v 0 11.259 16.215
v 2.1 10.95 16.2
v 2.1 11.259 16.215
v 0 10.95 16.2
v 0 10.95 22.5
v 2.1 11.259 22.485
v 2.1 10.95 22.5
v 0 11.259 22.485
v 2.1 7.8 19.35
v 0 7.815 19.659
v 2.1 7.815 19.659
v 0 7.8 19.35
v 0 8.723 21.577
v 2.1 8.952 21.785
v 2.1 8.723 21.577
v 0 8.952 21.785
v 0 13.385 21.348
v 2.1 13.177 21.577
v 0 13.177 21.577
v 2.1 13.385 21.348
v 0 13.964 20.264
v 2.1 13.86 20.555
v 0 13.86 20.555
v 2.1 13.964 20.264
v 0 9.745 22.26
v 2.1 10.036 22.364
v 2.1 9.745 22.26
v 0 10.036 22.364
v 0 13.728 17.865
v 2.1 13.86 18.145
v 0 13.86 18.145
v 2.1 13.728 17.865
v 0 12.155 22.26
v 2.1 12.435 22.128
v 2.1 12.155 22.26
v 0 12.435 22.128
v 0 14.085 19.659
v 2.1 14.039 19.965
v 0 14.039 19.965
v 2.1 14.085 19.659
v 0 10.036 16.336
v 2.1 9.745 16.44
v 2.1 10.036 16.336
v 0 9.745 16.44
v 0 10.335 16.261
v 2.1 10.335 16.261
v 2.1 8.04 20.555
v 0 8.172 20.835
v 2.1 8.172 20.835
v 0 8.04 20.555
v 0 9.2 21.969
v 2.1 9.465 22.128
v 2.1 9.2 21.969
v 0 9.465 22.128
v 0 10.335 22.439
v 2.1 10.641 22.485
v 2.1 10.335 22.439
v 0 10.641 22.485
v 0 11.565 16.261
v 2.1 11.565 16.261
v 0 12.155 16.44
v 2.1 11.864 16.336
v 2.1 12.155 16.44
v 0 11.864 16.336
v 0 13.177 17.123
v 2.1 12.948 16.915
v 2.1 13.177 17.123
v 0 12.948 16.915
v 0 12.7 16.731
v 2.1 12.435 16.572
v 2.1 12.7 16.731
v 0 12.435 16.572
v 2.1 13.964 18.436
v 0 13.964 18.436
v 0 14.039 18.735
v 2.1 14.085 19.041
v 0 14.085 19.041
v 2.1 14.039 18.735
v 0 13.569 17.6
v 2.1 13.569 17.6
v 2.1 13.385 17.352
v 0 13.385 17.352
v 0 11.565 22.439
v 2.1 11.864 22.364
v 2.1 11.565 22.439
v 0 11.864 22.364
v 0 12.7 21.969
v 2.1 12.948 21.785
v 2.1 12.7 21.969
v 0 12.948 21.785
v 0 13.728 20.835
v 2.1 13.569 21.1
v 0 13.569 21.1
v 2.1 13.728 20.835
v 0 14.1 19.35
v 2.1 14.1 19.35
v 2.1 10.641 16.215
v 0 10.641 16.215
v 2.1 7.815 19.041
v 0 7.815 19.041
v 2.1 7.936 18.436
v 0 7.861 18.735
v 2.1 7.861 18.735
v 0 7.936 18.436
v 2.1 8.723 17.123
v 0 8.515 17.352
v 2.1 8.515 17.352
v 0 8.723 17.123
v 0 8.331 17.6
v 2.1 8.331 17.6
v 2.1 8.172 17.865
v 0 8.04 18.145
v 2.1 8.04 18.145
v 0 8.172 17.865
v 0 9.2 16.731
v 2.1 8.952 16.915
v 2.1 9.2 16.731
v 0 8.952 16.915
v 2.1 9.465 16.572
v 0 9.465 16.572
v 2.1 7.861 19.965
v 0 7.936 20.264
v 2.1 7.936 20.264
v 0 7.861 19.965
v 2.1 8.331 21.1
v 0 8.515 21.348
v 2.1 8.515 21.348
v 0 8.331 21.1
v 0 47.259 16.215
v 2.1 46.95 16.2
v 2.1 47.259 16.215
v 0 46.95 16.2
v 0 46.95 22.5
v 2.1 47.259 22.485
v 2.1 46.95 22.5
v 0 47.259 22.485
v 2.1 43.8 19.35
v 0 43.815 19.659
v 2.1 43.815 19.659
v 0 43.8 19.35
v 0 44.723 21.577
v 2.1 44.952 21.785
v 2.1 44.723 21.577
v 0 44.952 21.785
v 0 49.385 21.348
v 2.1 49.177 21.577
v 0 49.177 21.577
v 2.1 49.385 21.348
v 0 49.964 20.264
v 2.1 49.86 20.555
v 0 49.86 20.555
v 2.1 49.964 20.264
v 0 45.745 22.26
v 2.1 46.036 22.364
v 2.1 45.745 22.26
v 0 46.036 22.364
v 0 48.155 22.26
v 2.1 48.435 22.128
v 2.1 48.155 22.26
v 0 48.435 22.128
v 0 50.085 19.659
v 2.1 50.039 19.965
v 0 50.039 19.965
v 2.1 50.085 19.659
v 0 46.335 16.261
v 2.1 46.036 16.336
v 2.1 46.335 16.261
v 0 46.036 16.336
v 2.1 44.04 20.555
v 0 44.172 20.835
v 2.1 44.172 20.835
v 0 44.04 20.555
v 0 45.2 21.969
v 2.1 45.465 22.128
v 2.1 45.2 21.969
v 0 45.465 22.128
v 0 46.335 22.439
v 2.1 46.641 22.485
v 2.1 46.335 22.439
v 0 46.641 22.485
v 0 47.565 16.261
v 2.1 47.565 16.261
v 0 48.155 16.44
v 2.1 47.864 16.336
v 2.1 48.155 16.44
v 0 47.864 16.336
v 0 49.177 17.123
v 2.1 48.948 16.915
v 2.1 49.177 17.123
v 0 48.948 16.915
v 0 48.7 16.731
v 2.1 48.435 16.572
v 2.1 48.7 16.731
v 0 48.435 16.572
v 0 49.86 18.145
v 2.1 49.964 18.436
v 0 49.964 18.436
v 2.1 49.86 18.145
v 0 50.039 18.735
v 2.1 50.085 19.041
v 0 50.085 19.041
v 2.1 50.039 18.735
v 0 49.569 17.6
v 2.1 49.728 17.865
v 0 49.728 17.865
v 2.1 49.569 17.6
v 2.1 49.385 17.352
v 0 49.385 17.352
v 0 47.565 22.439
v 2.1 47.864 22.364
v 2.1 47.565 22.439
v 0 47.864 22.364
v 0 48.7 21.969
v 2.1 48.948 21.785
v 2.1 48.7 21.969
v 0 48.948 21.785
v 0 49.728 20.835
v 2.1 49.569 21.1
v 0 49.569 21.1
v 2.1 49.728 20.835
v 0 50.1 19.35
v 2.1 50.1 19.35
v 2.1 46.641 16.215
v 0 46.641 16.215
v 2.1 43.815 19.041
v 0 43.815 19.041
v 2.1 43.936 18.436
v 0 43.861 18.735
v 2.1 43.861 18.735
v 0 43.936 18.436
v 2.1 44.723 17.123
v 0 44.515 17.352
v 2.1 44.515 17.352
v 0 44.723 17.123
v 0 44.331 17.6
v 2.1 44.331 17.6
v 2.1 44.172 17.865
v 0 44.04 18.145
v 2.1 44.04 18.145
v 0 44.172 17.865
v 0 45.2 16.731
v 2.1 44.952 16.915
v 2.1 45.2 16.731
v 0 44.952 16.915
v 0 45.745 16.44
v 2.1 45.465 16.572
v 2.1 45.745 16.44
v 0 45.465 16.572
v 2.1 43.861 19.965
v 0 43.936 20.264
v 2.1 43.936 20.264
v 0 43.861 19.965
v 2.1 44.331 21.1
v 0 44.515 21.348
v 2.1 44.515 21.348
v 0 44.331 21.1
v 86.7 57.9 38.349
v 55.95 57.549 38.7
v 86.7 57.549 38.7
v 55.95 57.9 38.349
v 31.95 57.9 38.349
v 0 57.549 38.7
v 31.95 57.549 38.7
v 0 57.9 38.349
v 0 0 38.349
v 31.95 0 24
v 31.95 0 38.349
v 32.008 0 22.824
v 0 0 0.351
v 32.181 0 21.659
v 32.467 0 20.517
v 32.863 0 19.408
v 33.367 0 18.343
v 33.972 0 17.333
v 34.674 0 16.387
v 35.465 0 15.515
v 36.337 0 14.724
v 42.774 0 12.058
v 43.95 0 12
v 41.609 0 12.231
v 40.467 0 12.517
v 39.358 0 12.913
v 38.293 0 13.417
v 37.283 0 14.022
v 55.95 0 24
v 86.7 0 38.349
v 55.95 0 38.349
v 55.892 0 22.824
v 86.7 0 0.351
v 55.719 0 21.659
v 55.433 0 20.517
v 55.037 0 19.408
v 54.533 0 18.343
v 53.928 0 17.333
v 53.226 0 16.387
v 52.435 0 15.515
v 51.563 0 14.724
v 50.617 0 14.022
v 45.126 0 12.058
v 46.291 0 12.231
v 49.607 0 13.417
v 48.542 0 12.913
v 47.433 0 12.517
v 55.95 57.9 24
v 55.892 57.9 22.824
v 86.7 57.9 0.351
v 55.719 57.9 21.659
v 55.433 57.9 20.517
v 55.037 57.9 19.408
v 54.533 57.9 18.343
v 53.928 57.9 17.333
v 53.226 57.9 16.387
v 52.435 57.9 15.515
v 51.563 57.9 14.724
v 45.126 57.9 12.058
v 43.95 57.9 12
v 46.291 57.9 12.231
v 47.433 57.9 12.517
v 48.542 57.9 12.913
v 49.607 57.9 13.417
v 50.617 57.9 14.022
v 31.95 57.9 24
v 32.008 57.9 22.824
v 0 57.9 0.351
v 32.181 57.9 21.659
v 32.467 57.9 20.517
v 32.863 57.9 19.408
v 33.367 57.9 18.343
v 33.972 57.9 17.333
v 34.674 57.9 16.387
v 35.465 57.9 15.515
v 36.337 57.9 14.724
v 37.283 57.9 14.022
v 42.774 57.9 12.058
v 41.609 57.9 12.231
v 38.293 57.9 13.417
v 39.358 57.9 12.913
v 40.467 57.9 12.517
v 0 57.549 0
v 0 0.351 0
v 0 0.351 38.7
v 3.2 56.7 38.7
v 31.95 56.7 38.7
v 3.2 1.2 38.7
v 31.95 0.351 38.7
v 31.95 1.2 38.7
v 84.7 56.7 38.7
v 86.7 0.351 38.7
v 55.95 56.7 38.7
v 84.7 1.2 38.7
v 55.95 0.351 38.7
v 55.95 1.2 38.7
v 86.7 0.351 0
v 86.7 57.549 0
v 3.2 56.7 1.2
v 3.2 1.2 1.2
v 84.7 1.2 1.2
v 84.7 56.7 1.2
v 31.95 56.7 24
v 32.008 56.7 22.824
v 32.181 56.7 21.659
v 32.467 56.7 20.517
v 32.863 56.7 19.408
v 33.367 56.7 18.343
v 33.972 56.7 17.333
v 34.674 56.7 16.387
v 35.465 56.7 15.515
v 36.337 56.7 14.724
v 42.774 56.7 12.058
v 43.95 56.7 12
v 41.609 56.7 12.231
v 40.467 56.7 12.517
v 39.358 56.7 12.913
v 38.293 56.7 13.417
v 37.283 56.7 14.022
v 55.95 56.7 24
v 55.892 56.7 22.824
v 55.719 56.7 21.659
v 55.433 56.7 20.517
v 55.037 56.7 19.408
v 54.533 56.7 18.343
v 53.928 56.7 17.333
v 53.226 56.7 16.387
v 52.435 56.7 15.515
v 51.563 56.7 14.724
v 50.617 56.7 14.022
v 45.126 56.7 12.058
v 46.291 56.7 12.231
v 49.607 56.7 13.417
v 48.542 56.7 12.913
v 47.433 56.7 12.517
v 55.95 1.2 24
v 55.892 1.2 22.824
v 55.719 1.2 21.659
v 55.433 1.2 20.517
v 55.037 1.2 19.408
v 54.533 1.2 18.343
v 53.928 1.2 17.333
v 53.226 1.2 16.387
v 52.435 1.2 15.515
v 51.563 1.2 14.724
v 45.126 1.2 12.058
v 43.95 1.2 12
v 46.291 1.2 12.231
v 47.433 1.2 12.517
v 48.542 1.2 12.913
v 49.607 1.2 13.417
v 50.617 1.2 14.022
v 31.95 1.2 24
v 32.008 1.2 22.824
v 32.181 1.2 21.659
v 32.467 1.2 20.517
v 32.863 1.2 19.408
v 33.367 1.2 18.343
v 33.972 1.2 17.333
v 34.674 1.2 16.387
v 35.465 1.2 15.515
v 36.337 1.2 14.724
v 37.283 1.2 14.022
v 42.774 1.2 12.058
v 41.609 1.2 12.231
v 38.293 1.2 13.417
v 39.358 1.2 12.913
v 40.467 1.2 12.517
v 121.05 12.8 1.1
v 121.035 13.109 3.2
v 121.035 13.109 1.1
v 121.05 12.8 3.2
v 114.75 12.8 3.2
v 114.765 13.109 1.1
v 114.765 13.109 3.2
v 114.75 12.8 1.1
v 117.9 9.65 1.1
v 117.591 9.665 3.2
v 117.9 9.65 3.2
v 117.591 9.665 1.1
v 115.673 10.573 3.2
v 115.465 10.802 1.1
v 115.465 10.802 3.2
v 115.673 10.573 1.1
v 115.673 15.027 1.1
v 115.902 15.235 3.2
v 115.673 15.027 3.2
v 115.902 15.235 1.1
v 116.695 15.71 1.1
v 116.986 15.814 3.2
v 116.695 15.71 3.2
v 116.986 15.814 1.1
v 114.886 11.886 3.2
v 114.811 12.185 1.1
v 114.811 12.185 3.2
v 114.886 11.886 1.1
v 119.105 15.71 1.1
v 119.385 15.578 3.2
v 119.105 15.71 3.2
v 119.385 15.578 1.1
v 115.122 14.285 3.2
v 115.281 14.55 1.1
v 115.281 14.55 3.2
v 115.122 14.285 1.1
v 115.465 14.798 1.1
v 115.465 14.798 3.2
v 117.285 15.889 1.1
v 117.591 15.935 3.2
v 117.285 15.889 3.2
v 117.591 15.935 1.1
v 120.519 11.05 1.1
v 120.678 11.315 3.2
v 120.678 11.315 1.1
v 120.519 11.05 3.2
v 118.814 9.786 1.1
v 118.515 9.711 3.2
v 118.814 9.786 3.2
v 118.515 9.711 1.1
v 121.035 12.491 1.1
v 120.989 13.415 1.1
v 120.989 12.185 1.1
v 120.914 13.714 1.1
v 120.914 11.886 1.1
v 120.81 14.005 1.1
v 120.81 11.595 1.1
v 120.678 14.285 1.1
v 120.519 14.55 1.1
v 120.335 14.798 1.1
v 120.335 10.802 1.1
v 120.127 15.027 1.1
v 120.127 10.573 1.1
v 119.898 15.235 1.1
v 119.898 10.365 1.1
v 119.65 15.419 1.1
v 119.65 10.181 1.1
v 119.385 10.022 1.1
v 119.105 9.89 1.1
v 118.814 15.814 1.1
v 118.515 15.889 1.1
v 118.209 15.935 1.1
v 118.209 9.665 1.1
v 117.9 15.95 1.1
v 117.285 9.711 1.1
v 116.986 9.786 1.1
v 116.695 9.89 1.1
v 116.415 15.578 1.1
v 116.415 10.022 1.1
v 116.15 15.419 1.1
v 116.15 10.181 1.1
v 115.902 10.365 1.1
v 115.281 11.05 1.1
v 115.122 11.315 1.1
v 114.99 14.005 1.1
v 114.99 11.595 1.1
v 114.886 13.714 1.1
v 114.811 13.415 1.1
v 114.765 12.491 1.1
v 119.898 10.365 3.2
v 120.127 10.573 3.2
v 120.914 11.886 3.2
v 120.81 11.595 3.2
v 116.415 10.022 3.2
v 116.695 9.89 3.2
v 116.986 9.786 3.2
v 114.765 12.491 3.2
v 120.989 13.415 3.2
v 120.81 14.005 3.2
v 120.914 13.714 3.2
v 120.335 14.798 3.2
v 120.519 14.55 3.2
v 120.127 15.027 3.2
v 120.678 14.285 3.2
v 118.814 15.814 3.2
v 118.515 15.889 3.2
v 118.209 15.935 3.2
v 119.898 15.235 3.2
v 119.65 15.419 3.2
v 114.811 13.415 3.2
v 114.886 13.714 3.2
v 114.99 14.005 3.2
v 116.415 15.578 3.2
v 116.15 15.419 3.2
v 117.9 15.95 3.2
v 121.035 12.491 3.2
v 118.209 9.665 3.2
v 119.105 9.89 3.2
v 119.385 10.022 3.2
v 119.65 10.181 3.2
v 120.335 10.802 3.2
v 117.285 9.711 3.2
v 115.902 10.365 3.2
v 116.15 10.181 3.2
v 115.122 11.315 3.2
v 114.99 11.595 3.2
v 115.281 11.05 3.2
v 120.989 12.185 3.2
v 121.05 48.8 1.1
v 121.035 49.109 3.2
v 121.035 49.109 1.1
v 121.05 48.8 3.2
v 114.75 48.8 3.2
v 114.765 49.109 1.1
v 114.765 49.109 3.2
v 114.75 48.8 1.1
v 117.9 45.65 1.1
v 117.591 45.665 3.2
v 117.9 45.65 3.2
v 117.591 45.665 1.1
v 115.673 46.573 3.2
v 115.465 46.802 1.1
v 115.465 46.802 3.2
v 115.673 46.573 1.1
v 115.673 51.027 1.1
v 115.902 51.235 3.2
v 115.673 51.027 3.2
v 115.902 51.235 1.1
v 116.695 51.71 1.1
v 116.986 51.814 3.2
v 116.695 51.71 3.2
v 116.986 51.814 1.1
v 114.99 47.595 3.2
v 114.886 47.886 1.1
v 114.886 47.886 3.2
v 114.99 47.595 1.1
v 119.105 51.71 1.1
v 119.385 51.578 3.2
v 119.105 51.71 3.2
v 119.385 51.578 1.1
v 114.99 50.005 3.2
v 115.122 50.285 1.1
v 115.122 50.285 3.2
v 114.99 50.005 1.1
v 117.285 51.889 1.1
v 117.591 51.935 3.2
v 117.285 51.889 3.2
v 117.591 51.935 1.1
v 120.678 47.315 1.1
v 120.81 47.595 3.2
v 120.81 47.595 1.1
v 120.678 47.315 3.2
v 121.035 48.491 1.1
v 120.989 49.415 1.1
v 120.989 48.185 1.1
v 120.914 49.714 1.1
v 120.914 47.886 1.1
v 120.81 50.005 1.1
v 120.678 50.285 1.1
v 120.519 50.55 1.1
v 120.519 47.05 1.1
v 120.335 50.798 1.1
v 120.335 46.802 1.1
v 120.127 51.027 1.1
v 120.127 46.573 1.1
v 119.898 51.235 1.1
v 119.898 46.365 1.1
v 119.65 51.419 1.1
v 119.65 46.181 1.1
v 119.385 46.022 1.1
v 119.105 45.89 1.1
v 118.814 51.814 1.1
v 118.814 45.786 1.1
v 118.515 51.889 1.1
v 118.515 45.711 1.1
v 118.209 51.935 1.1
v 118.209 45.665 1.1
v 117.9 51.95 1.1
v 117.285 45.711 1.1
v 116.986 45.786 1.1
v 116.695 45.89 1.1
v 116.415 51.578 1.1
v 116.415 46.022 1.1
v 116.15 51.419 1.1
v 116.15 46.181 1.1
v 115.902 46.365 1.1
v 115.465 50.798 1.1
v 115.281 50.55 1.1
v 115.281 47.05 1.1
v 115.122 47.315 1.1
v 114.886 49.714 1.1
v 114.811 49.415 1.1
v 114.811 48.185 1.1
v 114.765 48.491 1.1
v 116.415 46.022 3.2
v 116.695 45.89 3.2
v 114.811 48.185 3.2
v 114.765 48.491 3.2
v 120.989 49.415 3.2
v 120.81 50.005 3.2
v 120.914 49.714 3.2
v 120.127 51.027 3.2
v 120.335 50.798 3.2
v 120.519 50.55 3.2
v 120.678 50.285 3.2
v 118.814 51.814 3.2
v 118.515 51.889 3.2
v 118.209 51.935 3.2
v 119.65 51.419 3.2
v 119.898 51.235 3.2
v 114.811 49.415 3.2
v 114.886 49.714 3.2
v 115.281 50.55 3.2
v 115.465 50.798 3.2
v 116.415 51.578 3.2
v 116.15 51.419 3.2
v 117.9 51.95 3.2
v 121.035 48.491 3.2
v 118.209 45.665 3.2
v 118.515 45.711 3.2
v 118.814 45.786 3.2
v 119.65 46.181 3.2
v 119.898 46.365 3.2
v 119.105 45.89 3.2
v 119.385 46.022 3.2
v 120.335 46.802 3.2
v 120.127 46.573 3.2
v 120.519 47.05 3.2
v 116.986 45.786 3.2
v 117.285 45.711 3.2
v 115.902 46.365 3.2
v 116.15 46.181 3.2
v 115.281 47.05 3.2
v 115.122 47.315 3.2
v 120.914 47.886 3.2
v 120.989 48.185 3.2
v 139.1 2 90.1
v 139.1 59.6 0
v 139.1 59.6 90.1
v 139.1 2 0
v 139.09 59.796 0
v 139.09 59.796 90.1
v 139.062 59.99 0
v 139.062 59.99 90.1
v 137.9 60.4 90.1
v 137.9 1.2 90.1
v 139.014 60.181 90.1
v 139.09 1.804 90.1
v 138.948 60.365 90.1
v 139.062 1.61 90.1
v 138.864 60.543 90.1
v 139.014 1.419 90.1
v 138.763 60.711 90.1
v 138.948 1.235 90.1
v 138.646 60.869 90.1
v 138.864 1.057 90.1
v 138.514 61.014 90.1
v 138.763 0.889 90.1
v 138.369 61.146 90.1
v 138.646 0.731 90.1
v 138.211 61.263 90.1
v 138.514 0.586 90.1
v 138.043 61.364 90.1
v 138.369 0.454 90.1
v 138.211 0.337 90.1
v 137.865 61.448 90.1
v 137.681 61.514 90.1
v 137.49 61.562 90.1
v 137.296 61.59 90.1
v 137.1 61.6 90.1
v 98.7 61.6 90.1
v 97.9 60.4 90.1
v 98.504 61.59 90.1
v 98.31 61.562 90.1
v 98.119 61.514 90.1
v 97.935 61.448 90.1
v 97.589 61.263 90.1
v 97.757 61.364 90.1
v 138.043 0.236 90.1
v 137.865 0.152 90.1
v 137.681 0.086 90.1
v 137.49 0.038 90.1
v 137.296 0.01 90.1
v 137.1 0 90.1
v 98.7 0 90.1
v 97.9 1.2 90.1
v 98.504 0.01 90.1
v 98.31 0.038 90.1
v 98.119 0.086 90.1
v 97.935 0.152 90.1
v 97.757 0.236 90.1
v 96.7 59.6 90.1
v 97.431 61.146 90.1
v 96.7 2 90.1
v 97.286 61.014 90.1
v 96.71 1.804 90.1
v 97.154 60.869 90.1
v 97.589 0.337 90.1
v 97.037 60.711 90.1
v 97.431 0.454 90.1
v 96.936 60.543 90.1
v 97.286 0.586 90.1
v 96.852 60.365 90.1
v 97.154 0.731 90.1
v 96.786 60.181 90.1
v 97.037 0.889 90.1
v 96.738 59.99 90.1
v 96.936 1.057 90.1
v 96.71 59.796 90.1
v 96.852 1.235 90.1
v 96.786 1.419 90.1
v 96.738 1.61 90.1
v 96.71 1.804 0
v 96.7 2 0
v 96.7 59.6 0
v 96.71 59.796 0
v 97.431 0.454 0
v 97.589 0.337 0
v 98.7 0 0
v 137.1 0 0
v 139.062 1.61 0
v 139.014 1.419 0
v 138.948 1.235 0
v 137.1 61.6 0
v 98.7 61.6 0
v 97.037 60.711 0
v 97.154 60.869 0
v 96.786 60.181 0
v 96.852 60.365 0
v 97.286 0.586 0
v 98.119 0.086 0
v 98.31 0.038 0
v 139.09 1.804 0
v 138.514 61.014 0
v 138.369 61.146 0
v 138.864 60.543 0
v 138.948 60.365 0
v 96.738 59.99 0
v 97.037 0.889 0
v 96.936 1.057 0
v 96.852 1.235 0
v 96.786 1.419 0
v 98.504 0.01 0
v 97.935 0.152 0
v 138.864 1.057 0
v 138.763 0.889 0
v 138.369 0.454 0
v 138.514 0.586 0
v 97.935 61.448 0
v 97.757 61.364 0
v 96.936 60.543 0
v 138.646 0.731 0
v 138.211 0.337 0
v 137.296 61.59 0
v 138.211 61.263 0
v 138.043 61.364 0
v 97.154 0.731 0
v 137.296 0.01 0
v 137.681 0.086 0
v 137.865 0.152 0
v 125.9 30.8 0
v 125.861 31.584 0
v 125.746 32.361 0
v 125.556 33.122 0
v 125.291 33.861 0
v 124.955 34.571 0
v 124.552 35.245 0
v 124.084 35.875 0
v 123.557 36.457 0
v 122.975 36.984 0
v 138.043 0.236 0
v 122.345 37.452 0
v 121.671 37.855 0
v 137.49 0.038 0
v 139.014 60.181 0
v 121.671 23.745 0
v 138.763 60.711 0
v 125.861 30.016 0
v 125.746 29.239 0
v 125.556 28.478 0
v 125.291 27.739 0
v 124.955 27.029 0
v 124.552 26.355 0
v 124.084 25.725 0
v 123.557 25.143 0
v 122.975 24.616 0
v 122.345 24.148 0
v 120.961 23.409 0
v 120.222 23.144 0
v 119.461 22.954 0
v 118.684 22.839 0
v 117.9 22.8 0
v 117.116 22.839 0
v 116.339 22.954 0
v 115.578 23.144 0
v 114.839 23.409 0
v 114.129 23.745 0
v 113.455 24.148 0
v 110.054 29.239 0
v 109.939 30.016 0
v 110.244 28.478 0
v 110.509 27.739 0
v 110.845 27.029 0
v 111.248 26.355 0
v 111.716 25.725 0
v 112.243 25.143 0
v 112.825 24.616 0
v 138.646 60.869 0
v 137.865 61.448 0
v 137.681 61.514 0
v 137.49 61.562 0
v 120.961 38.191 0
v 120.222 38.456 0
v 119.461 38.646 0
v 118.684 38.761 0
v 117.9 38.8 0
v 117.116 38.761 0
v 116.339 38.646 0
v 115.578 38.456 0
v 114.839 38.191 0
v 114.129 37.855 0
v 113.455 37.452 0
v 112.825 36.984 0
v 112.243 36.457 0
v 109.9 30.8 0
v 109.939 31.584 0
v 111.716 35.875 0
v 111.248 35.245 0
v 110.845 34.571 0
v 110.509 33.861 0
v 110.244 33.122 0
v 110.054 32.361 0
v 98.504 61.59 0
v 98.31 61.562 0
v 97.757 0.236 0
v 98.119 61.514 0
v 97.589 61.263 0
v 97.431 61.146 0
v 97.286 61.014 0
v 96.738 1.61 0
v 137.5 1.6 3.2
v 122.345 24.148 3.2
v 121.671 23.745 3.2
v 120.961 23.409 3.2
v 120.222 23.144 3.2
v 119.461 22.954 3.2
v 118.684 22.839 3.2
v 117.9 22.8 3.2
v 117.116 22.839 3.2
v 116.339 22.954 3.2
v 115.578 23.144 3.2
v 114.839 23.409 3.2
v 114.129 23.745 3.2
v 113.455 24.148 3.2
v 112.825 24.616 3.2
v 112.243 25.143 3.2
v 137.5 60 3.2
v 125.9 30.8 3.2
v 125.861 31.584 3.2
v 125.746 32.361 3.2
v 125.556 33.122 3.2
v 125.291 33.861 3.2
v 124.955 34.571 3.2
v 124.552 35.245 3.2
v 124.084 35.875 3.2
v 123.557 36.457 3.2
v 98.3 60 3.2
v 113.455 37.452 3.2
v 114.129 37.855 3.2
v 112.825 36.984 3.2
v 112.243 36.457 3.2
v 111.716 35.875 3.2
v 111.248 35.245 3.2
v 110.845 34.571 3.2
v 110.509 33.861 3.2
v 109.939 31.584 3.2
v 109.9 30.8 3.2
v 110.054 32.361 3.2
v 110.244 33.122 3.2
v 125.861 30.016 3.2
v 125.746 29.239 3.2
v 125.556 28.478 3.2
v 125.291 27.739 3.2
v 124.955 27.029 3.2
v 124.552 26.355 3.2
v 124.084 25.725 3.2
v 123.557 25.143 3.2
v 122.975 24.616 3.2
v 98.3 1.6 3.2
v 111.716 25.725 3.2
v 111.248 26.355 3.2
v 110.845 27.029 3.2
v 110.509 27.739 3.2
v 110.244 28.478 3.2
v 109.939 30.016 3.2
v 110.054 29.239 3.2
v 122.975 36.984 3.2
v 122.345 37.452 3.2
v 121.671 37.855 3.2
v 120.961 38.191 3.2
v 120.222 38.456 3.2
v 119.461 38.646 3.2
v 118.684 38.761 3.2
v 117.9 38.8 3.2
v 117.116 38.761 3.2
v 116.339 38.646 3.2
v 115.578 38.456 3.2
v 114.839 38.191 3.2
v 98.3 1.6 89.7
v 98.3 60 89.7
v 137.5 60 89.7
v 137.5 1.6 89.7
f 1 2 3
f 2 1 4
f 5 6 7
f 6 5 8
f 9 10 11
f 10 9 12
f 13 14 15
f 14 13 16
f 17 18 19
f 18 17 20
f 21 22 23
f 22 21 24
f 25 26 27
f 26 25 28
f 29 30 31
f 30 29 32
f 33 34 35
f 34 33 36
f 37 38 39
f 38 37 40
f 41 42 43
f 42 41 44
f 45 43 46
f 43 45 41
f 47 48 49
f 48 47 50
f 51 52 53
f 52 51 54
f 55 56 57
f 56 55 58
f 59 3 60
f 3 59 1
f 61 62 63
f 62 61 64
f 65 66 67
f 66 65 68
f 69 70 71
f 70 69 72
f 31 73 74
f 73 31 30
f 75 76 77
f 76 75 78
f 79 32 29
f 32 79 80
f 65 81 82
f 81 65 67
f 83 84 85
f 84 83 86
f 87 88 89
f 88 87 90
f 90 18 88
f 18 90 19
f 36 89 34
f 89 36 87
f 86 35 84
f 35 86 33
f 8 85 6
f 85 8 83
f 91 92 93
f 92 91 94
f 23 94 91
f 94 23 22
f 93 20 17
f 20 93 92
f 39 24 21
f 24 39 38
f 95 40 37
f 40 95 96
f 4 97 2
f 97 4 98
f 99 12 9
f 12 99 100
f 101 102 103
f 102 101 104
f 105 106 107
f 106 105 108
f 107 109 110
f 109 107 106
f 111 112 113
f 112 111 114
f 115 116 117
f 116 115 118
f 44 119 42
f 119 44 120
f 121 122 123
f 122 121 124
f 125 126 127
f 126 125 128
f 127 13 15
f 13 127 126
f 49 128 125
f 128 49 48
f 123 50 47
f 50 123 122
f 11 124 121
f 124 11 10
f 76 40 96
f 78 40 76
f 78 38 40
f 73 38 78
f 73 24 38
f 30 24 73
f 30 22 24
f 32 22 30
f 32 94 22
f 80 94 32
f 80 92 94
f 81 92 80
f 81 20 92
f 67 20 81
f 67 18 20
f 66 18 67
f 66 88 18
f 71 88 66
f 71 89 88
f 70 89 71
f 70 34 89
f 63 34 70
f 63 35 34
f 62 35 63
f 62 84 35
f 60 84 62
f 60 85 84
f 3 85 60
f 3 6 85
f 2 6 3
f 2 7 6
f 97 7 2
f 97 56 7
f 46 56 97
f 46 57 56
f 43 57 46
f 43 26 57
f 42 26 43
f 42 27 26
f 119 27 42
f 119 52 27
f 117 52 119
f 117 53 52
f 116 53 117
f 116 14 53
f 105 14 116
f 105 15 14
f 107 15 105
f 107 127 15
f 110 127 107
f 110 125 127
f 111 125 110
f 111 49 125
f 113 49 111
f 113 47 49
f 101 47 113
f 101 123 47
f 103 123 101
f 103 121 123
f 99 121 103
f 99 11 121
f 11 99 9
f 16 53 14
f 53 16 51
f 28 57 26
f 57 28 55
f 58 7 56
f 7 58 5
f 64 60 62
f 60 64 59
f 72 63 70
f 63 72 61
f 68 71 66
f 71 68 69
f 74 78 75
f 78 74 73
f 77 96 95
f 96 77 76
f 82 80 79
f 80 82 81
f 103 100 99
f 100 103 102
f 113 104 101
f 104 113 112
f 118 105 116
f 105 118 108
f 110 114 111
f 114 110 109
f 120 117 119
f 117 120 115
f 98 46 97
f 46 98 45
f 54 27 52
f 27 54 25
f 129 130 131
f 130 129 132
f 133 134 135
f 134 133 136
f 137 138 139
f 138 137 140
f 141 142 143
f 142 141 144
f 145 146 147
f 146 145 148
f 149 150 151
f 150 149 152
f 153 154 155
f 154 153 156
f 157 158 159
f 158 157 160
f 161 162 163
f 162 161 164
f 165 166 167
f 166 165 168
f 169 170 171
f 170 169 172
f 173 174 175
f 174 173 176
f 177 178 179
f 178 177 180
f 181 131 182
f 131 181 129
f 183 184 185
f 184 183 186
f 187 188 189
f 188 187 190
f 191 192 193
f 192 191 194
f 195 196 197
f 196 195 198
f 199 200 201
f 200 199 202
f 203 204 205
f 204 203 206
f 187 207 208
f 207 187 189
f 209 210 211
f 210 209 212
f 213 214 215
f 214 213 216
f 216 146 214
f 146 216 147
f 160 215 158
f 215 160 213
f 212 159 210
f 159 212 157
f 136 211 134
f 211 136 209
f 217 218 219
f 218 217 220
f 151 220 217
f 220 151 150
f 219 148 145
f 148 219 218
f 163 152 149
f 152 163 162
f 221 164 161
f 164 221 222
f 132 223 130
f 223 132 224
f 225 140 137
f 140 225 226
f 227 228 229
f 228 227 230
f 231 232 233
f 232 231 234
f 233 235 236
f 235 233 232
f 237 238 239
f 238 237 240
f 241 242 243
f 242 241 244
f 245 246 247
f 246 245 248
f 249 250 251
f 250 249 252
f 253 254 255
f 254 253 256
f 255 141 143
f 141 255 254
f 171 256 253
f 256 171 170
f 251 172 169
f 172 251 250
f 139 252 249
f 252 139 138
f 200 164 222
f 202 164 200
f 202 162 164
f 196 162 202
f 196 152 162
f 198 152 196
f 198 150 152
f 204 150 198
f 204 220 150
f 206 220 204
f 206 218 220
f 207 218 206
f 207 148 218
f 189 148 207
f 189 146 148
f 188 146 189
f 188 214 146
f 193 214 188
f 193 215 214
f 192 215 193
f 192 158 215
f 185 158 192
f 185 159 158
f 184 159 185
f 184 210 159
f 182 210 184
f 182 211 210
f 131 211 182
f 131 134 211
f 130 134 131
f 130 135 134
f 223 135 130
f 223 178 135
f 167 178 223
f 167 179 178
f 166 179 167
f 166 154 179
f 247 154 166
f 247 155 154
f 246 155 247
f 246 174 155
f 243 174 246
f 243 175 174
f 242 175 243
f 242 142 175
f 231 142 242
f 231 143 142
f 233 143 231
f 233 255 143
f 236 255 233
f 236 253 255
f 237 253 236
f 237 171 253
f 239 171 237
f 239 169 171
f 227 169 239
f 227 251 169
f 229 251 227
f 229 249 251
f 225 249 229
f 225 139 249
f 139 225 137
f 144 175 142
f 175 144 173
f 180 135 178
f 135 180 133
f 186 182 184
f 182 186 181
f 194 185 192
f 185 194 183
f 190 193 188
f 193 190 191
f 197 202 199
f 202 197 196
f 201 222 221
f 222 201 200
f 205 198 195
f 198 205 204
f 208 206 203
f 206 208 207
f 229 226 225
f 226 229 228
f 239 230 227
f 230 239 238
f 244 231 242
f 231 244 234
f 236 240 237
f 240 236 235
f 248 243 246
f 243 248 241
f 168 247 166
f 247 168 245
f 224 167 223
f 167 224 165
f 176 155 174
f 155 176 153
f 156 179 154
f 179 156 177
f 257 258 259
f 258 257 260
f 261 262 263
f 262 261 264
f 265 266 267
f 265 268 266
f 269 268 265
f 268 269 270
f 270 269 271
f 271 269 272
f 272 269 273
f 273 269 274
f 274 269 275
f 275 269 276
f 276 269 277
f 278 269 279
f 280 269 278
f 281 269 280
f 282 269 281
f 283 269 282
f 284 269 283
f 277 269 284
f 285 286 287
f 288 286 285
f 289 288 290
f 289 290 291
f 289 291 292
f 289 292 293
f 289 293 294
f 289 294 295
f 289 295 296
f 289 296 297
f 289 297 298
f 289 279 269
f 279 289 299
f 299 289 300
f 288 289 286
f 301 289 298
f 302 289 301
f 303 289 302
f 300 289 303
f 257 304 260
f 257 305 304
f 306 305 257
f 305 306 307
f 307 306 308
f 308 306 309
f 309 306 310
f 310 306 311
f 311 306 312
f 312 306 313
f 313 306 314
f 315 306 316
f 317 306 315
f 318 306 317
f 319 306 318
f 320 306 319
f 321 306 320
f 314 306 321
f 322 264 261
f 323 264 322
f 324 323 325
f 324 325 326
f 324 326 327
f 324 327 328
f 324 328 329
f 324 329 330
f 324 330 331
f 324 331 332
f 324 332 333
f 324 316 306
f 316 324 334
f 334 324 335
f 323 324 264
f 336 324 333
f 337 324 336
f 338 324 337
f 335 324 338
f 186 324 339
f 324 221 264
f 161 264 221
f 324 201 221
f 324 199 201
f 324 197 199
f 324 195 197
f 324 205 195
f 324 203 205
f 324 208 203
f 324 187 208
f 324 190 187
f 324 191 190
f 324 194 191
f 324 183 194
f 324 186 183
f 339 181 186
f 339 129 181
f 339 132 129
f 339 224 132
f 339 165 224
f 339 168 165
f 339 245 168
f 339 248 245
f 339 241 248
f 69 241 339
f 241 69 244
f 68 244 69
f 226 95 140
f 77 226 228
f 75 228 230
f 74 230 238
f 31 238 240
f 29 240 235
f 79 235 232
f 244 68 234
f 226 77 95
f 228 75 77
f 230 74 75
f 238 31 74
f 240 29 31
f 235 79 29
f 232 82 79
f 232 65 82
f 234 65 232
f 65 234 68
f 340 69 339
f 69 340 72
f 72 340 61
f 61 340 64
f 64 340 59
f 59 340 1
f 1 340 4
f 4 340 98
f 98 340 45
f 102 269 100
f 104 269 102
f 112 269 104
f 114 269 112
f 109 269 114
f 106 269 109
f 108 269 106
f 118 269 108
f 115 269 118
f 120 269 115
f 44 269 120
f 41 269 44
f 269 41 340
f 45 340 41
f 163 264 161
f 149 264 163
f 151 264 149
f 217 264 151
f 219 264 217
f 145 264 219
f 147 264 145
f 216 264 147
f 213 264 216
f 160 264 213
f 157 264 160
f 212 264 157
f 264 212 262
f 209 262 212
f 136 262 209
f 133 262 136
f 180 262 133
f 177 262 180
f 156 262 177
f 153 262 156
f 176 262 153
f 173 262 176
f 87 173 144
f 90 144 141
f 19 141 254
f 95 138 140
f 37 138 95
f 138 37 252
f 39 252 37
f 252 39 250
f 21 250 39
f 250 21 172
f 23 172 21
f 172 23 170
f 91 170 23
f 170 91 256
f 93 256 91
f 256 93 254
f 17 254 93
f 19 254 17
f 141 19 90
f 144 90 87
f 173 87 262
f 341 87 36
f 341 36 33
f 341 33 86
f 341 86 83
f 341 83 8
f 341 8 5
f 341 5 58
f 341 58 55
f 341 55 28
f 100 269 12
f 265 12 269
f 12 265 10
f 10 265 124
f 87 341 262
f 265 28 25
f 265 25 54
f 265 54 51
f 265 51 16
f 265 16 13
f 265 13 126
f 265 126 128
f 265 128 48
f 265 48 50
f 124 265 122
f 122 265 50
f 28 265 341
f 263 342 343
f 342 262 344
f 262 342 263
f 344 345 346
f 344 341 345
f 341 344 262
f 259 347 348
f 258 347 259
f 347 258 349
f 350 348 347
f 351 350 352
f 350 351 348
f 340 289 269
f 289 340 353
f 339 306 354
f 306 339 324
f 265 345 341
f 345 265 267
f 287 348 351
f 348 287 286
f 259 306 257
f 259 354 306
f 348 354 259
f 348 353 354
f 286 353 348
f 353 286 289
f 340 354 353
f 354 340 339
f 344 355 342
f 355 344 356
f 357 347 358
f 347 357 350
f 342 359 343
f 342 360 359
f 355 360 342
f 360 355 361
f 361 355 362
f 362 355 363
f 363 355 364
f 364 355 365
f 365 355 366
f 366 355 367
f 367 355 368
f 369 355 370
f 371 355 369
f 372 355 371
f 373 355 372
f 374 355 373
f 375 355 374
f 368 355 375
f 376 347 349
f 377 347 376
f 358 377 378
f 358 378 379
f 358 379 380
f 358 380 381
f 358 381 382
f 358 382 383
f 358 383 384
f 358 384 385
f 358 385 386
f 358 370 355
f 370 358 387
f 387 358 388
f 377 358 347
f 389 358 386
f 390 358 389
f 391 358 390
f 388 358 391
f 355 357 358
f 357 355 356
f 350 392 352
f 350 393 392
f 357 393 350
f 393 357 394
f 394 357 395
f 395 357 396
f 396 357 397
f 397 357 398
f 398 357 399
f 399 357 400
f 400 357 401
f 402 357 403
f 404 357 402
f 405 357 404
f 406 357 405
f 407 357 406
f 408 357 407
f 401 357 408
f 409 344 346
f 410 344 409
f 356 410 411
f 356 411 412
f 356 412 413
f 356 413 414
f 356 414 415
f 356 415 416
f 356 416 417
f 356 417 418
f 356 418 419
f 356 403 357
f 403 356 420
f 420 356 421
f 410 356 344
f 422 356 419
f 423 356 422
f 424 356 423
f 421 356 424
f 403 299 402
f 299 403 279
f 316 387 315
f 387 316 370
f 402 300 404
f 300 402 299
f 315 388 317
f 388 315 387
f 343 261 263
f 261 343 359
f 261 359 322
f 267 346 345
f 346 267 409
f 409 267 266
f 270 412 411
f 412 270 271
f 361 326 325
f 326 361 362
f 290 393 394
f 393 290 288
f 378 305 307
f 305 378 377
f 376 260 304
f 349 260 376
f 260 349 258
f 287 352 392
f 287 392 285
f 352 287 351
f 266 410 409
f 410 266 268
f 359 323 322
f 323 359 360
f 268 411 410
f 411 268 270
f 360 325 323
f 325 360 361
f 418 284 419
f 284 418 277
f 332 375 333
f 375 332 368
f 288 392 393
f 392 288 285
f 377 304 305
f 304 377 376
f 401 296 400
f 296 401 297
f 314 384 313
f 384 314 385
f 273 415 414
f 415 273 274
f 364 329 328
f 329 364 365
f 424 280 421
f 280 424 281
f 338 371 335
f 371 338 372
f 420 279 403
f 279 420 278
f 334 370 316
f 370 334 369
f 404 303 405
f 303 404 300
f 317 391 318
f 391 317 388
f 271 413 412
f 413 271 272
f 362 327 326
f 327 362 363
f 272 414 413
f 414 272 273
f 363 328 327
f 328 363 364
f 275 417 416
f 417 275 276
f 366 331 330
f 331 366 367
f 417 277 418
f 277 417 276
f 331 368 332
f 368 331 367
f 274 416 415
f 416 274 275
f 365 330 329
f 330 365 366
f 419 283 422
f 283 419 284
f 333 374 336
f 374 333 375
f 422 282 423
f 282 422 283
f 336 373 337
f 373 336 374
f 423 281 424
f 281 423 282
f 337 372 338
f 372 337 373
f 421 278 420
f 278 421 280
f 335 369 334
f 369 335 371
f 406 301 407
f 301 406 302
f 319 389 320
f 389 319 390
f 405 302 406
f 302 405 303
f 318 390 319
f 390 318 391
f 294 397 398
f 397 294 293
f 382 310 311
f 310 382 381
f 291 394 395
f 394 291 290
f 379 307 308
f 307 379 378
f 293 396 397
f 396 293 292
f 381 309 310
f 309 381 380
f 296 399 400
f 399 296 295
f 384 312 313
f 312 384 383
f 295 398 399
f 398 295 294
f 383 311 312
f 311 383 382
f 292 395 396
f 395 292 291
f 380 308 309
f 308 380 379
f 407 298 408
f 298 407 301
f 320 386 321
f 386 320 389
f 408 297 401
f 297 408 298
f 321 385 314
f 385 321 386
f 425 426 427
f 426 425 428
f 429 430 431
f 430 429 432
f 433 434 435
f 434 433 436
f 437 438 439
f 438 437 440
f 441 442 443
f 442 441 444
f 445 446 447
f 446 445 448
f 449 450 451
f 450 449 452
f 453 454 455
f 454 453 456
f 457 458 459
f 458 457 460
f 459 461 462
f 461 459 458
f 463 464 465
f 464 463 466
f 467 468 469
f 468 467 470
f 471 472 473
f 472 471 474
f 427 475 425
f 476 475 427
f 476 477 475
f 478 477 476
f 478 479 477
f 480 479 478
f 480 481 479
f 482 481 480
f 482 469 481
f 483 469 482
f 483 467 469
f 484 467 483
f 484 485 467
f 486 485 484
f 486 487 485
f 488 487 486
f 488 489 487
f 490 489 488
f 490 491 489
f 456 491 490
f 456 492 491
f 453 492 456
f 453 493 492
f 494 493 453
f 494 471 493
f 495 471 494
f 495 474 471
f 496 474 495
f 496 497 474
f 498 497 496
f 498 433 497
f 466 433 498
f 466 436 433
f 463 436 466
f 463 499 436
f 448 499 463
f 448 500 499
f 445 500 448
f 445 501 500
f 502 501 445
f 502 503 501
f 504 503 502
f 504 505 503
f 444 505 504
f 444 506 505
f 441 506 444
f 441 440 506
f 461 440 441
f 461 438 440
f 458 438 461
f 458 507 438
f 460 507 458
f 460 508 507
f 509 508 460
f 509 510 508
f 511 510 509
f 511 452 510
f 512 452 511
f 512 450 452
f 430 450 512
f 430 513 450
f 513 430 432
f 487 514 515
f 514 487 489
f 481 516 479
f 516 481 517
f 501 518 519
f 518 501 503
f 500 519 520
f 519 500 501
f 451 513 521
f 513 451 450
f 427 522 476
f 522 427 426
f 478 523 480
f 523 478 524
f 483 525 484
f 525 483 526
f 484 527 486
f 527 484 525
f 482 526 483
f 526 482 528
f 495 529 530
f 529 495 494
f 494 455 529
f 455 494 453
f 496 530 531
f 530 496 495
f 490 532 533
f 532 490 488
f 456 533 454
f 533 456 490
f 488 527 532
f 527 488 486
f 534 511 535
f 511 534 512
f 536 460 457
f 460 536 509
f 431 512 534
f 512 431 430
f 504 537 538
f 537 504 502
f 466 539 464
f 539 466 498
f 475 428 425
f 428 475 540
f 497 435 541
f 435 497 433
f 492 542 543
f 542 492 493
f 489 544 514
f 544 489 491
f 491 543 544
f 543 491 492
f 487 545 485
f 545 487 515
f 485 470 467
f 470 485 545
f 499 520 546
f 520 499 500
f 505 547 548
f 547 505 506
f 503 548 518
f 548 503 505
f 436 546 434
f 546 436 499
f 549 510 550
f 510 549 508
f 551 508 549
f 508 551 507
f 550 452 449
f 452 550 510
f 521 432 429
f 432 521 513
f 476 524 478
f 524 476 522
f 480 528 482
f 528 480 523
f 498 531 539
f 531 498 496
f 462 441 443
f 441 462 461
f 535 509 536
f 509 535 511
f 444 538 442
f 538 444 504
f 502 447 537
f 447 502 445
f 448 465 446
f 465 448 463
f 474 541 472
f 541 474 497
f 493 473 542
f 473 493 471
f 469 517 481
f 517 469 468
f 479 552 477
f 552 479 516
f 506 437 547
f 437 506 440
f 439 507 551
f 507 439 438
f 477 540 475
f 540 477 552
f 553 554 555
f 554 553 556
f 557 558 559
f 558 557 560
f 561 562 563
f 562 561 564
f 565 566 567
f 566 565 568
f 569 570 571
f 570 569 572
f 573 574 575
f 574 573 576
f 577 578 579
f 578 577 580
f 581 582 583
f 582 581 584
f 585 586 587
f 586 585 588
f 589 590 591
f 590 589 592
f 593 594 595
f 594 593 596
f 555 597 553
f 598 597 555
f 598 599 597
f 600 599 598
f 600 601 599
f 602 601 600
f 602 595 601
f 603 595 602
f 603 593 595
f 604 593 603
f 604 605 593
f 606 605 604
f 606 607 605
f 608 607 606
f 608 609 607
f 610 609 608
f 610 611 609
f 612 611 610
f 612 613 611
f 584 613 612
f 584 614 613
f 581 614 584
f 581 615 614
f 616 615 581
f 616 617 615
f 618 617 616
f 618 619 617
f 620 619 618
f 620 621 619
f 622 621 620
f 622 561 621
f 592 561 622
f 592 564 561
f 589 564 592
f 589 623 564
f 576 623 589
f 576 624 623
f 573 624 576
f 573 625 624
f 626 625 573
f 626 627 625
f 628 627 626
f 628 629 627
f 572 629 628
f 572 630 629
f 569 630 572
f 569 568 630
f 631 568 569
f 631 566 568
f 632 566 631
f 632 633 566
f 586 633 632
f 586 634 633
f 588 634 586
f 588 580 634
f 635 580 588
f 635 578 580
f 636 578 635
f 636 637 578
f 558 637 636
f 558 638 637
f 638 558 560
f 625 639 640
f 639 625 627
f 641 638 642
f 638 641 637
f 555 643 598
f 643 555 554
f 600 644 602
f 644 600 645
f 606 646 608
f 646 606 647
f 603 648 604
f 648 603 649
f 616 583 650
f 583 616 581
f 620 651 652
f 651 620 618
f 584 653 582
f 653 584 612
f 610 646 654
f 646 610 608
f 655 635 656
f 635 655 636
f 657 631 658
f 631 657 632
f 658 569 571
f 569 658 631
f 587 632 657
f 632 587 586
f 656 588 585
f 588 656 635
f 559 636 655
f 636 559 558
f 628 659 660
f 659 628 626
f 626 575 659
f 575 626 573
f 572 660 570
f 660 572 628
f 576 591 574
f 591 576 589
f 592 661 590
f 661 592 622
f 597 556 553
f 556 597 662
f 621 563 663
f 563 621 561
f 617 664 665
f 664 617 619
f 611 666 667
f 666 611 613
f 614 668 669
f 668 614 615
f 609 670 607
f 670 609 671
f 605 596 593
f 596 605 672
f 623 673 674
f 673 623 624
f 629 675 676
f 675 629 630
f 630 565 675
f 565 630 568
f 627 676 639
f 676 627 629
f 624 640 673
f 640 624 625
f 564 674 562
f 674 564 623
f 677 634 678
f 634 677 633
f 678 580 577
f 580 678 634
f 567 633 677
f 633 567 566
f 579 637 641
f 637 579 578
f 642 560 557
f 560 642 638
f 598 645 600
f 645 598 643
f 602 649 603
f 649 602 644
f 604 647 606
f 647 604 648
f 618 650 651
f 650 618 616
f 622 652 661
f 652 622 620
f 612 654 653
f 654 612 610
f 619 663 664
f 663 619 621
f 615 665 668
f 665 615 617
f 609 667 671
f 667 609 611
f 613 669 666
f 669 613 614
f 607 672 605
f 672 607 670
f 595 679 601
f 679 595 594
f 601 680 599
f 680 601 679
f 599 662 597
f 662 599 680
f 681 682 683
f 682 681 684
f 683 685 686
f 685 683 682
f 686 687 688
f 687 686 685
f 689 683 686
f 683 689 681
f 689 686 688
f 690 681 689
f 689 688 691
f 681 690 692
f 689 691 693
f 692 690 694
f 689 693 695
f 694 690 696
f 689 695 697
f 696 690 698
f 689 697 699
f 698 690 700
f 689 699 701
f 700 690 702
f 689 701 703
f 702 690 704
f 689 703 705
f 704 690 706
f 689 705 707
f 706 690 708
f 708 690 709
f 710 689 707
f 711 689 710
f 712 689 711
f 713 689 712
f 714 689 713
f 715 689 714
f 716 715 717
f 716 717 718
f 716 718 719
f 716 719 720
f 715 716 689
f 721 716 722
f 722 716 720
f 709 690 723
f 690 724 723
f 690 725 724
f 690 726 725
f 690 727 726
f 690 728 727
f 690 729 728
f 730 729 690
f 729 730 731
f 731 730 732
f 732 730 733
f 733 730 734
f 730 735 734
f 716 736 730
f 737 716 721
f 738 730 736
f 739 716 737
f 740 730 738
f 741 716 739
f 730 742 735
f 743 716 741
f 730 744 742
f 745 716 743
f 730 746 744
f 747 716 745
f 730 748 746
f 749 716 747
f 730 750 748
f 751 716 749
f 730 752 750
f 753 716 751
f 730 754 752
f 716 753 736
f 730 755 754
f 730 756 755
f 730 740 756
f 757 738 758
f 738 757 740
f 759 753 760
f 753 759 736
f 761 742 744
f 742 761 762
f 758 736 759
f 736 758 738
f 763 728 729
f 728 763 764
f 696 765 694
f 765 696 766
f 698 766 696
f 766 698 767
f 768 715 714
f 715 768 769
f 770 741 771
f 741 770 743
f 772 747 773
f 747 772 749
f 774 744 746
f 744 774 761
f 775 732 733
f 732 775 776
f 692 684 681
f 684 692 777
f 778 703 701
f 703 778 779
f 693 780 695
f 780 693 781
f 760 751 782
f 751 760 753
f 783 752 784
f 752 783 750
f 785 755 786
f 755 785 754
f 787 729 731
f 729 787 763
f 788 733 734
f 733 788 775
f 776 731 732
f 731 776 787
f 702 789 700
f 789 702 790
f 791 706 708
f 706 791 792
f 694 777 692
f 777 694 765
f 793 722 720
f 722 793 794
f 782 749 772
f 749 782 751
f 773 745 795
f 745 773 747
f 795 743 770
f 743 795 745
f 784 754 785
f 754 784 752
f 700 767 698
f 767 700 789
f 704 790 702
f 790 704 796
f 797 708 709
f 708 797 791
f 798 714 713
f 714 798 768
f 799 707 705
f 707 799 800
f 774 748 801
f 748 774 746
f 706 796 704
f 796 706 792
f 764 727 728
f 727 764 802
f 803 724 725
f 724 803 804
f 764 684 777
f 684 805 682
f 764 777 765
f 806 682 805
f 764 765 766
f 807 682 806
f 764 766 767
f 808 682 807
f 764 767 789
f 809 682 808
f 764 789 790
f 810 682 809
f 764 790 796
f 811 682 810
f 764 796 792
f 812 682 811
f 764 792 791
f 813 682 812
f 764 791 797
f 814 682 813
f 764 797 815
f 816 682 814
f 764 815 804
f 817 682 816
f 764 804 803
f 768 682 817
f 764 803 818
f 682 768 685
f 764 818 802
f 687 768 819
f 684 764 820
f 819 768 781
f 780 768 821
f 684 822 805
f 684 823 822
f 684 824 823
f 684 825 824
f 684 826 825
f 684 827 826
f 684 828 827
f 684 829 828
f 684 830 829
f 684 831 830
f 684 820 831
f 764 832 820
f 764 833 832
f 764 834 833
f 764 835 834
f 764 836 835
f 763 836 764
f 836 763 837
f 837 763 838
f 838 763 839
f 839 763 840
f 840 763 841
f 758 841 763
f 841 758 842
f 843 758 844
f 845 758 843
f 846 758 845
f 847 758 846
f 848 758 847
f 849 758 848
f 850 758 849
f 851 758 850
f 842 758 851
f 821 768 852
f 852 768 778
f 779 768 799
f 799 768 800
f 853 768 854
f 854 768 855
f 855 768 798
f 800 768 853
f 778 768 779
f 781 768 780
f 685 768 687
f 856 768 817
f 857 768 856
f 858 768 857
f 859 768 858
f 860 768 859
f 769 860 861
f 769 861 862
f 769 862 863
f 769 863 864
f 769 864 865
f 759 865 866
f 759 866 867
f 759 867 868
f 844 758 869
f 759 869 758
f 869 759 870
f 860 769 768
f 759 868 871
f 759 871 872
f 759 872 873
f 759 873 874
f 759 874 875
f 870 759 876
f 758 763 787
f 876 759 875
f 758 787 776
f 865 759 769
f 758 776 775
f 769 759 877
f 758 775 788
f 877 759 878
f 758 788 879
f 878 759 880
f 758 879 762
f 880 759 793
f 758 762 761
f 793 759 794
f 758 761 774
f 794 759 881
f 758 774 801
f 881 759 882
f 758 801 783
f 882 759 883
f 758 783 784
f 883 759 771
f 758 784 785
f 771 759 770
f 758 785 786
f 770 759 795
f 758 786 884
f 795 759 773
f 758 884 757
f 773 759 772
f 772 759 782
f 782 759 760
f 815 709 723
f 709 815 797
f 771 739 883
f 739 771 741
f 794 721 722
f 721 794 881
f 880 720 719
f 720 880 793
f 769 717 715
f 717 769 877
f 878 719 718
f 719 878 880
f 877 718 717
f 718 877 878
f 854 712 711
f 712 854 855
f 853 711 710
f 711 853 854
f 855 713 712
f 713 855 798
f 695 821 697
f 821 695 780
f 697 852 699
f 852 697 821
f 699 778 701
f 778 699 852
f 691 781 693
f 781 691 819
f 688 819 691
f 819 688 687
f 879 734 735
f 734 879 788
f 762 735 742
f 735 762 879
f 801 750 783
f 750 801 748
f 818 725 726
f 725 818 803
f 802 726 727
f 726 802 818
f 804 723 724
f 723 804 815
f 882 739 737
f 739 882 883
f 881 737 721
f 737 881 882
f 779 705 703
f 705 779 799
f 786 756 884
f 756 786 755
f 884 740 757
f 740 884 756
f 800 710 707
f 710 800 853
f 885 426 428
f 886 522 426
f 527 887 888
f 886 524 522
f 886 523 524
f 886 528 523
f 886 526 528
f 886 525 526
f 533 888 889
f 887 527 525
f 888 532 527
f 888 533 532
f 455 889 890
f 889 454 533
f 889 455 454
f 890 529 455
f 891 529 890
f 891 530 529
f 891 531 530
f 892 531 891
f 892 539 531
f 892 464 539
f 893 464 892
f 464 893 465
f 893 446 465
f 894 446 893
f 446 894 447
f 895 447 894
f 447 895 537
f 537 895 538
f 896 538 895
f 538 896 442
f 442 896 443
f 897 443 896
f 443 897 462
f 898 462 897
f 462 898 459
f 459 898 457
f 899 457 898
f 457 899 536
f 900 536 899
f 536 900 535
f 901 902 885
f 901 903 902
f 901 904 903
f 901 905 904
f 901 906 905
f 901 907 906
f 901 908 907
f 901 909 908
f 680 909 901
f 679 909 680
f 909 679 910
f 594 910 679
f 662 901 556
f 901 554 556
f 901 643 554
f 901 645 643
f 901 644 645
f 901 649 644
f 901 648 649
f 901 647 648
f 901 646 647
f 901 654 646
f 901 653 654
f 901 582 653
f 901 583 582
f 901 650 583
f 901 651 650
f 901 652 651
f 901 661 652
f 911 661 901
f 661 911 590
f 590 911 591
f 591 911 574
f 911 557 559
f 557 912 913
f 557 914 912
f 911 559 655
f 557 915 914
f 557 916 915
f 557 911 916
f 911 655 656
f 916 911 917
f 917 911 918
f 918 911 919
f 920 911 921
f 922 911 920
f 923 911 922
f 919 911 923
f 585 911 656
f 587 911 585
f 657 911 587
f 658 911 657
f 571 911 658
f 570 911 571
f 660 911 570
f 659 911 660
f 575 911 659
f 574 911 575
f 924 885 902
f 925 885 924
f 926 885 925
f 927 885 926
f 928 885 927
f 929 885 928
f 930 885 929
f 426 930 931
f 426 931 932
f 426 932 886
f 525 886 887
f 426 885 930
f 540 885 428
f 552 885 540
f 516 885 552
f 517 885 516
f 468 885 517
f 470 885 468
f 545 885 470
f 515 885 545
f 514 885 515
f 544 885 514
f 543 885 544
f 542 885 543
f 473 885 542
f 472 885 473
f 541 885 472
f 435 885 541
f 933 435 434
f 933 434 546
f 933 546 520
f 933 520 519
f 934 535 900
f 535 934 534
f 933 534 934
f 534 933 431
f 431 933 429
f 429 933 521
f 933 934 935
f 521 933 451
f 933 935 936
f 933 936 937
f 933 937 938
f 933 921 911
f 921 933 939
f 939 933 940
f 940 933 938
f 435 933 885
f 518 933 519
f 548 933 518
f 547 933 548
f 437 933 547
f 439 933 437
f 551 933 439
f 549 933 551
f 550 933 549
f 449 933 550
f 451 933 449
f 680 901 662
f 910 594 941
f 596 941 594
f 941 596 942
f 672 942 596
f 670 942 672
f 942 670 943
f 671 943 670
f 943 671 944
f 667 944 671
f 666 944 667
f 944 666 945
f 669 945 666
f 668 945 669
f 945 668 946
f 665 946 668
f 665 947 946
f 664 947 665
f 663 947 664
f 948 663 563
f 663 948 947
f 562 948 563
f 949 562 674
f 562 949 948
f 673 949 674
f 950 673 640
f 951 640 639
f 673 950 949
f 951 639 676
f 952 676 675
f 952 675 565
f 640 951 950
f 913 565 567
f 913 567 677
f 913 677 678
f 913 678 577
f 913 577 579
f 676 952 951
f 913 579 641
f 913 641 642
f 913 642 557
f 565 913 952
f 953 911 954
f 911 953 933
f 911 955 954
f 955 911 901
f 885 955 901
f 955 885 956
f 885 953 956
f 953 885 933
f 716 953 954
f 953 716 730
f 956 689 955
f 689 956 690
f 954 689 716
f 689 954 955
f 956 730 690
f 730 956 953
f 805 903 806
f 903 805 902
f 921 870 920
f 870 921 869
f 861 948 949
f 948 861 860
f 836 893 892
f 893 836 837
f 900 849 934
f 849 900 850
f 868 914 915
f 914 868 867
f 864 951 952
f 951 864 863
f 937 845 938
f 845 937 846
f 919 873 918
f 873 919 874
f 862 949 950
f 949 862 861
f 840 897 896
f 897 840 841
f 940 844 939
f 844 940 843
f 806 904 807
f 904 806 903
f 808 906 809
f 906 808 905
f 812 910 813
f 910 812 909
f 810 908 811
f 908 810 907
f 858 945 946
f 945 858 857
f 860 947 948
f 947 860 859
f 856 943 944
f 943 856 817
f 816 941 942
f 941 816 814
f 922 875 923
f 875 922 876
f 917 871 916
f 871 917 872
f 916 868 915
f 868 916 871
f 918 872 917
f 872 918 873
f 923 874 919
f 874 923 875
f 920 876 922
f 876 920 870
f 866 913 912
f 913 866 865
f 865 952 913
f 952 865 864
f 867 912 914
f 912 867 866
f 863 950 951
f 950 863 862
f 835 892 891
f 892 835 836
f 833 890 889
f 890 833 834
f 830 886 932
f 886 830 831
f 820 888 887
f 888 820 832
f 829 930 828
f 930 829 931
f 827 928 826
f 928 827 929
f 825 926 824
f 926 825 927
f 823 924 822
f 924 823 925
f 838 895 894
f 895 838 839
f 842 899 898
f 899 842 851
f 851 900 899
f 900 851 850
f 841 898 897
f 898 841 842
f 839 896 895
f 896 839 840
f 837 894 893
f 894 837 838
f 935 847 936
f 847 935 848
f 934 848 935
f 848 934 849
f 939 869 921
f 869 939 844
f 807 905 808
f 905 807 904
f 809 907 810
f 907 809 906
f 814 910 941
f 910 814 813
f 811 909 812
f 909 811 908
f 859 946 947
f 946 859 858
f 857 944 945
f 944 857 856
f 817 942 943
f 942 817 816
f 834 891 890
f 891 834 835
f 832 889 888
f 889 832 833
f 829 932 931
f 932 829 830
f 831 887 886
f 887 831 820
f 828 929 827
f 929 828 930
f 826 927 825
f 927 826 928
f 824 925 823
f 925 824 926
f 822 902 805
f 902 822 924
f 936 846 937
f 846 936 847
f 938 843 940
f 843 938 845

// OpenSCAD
// Kartenbox (Schuber) – Schublade gleitet in eine Hülle mit geschlossener
// Rückwand, Verschluss über Magnete in den beiden Rückwänden
// Alle Maße in Millimetern (Regel: units-mm)
//
// Kontext (Regel: context-first):
//   - context/printer.md:    Anycubic Kobra S1, 0.4mm Düse, PEI
//   - context/tolerances.md: Gleitpassung 0.2–0.25mm/Seite, eff. XY-Fehler
//                            ~0.15–0.2mm/Seite
//   - context/materials.md:  noch leer -> PLA laut Nutzer
//
// Anforderungen aus dem Design-Dialog:
//   - Kartenstapel 80 x 54 mm, 36 mm hoch, ohne Sleeves (auch künftig nicht)
//   - Gelegentlicher Transport im Rucksack -> Verschluss muss sicher halten
//   - Verschluss: Schuber + Magnete, Magnete werden eingeklebt
//     (vorhanden: 5x2, 6x2, 7x2 mm rund -> Standard hier 6x2)
//   - PLA, einfarbig, keine Gravur (vorerst)
//
// Koordinaten: X = Schieberichtung (Kartenlänge), Y = Breite, Z = Höhe.
// Die Karten liegen flach in der Schublade.
//
// Bedienung: Zum Öffnen mit dem Finger durch das Loch in der Rückwand der
// Hülle drücken, bis die Schublade vorne heraussteht, dann herausziehen.
// Beim Schließen ziehen die Magnete die Schublade auf den letzten mm zu.
// Geschlossen liegt die Schublade mit ihrer Rückwand an der Hüllen-
// Rückwand an (definierter Anschlag = Magnete maximal nah beieinander).
//
// Druckausrichtung (part = "print"):
//   - Schublade: auf dem Boden liegend, offen nach oben. Keine Stützen.
//     Magnettaschen liegen waagerecht in der Rückwand (Ø6.3mm Brücke, unkritisch).
//   - Hülle: auf der Rückwand stehend, Öffnung nach oben. Keine Stützen,
//     Magnettaschen öffnen nach oben.
//
// Magnete einkleben: POLUNG BEACHTEN! Jedes Paar muss sich anziehen.
// Tipp: Magnet in die Hüllen-Tasche kleben, Partner-Magnet obenauf setzen
// (zieht sich richtig herum an), dessen Außenseite markieren, dann mit der
// markierten Seite nach außen in die Schubladen-Tasche kleben.
// Magnete dürfen nicht überstehen (Tasche ist 0.1mm tiefer als der Magnet).

// ---- Ausgabe ----
// "print"        = beide Teile in Druckausrichtung nebeneinander
// "drawer"       = nur Schublade (Druckausrichtung)
// "sleeve"       = nur Hülle (Druckausrichtung)
// "assembly"     = zusammengebaut, Schublade um open_mm herausgezogen
// "interference" = Schnittmenge beider Teile im geschlossenen Zustand (muss leer sein)
part    = "print";
open_mm = 30;

// ---- Karten ----
card_l  = 80;     // Kartenlänge (X)
card_w  = 54;     // Kartenbreite (Y)
stack_h = 36;     // Stapelhöhe (Z)
card_clear_xy  = 0.75; // Luft pro Seite um den Stapel (eff. XY-Fehler frisst ~0.15–0.2 davon)
stack_headroom = 1.5;  // Luft über dem Stapel (Stapelhöhe schwankt je nach Mischen/Feuchte)

// ---- Schublade ----
d_side_t  = 1.2;  // Seitenwände (3 Linien à 0.4)
d_floor_t = 1.2;  // Boden (6 Schichten à 0.2)
d_front_t = 2.0;  // Front (sichtbare Stirnseite, bündig mit der Hüllenöffnung)
d_back_t  = 3.2;  // Rückwand, trägt die Magnettaschen
d_chamfer = 0.6;  // Fase an den 4 Längskanten: Freigang in den Innenecken der
                  // Hülle, wirkt zugleich gegen Elefantenfuß

// ---- Hülle ----
s_wall_t     = 1.6;  // Wände (4 Linien à 0.4)
s_back_t     = 3.2;  // Rückwand, trägt Magnettaschen + Drückloch
slide_clear  = 0.25; // Gleitspiel pro Seite (tolerances.md: 0.2–0.25 für bewegliche Passungen)
front_recess = 0.2;  // Schublade sitzt geschlossen minimal hinter der Öffnung (steht nie über)
s_edge_r     = 2;    // Rundung der 4 Längskanten außen
rim_chamfer  = 0.4;  // Einführfase innen an der Öffnung

// ---- Magnete ----
mag_d           = 6;    // Magnetdurchmesser (5 / 6 / 7 vorhanden)
mag_h           = 2;    // Magnethöhe
mag_clear       = 0.15; // Radialspiel pro Seite zum Einkleben
mag_depth_extra = 0.1;  // Tasche tiefer als Magnet -> Magnet steht nicht über
mag_spacing     = 36;   // Abstand der beiden Magnetpaare Mitte-Mitte (Y)

// ---- Griffe ----
push_hole_d  = 16;  // Drückloch in der Hüllen-Rückwand (Fingerkuppe)
notch_w      = 24;  // Breite der Daumenmulden in den Seitenwänden der Schublade
notch_bottom = 12;  // Unterkante der Daumenmulde über der Schubladenunterseite

$fn = 64;

// ---- Abgeleitete Maße ----
d_in_l = card_l + 2 * card_clear_xy;     // Kartenfach Länge
d_in_w = card_w + 2 * card_clear_xy;     // Kartenfach Breite
d_in_h = stack_h + stack_headroom;       // Kartenfach Höhe (bis Oberkante Seitenwand)
d_l = d_back_t + d_in_l + d_front_t;     // Schublade außen
d_w = d_in_w + 2 * d_side_t;
d_h = d_floor_t + d_in_h;

s_in_w = d_w + 2 * slide_clear;          // Hülle innen
s_in_h = d_h + 2 * slide_clear;
s_in_l = d_l + front_recess;
s_l = s_back_t + s_in_l;                 // Hülle außen = Box außen
s_w = s_in_w + 2 * s_wall_t;
s_h = s_in_h + 2 * s_wall_t;

pocket_d = mag_d + 2 * mag_clear;
pocket_h = mag_h + mag_depth_extra;

// Lage der Schublade in der Hülle (zentriert im Gleitspiel)
d_off_y = s_wall_t + slide_clear;
d_off_z = s_wall_t + slide_clear;

// Magnet-Mittelpunkte: in beiden Teilen aus derselben Größe abgeleitet,
// damit die Paare im geschlossenen Zustand exakt fluchten
mag_z_drawer = d_h / 2;
mag_z_sleeve = d_off_z + mag_z_drawer;
function mag_y_list(width) = [width / 2 - mag_spacing / 2, width / 2 + mag_spacing / 2];

echo(str("Box außen (L x B x H): ", s_l, " x ", s_w, " x ", s_h, " mm"));
echo(str("Schublade außen: ", d_l, " x ", d_w, " x ", d_h, " mm"));
echo(str("Kartenfach innen: ", d_in_l, " x ", d_in_w, " x ", d_in_h, " mm"));

// ---- 2D-Hilfsformen ----

// Rechteck [0,w]x[0,h] mit 45°-Fasen an den Ecken (konvex -> offset unkritisch)
module chamfered_rect(w, h, c) {
    translate([c, c]) offset(delta = c, chamfer = true) square([w - 2 * c, h - 2 * c]);
}

// Rechteck [0,w]x[0,h] mit gerundeten Ecken (konvex -> offset unkritisch)
module rounded_rect(w, h, r) {
    translate([r, r]) offset(r = r) square([w - 2 * r, h - 2 * r]);
}

// Daumenmulde als U-Form in der XZ-Ebene (x um 0 zentriert)
module notch_2d() {
    r = notch_w / 2;
    translate([0, notch_bottom + r]) circle(r = r);
    translate([-r, notch_bottom + r]) square([notch_w, d_h]);
}

// Magnettasche entlang +X, Öffnung bei x=0
module magnet_pocket_x() {
    rotate([0, 90, 0]) cylinder(d = pocket_d, h = pocket_h + 0.01);
}

// ---- Teile ----

// Schublade: Rückwand bei x=0, Front bei x=d_l
module drawer() {
    difference() {
        // Außenkörper: gefastes YZ-Profil entlang X extrudiert
        rotate([90, 0, 90]) linear_extrude(d_l) chamfered_rect(d_w, d_h, d_chamfer);

        // Kartenfach (nach oben offen)
        translate([d_back_t, d_side_t, d_floor_t]) cube([d_in_l, d_in_w, d_in_h + 1]);

        // Daumenmulden in beiden Seitenwänden, mittig über dem Kartenfach
        translate([d_back_t + d_in_l / 2, d_w + 1, 0])
            rotate([90, 0, 0]) linear_extrude(d_w + 2) notch_2d();

        // Magnettaschen, öffnen nach hinten (Richtung Hüllen-Rückwand)
        for (y = mag_y_list(d_w))
            translate([-0.01, y, mag_z_drawer]) magnet_pocket_x();
    }
}

// Hülle: Rückwand bei x=0, Öffnung bei x=s_l
module sleeve() {
    difference() {
        rotate([90, 0, 90]) linear_extrude(s_l) rounded_rect(s_w, s_h, s_edge_r);

        // Innenraum, vorne offen
        translate([s_back_t, s_wall_t, s_wall_t]) cube([s_in_l + 1, s_in_w, s_in_h]);

        // Einführfase an der Öffnung
        hull() {
            translate([s_l - rim_chamfer, s_wall_t, s_wall_t])
                cube([0.01, s_in_w, s_in_h]);
            translate([s_l, s_wall_t - rim_chamfer, s_wall_t - rim_chamfer])
                cube([0.01, s_in_w + 2 * rim_chamfer, s_in_h + 2 * rim_chamfer]);
        }

        // Drückloch in der Rückwand
        translate([-1, s_w / 2, s_h / 2])
            rotate([0, 90, 0]) cylinder(d = push_hole_d, h = s_back_t + 2);

        // Magnettaschen, öffnen zur Innenseite der Rückwand
        for (y = mag_y_list(s_w))
            translate([s_back_t - pocket_h, y, mag_z_sleeve]) magnet_pocket_x();
    }
}

// ---- Ausgabe ----

module drawer_in_sleeve(pull) {
    translate([s_back_t + pull, d_off_y, d_off_z]) drawer();
}

// render() erzwingt die exakte Boolesche Berechnung, damit die F5-Vorschau
// dem Export entspricht (siehe skills/modeling.md)
if (part == "print") {
    render(convexity = 10) drawer();
    // Hülle auf die Rückwand gestellt (x -> z), rechts neben die Schublade
    translate([d_l + 10 + s_h, 0, 0]) rotate([0, -90, 0]) render(convexity = 10) sleeve();
} else if (part == "drawer") {
    render(convexity = 10) drawer();
} else if (part == "sleeve") {
    rotate([0, -90, 0]) render(convexity = 10) sleeve();
} else if (part == "assembly") {
    color("SteelBlue", 0.6) render(convexity = 10) sleeve();
    color("Orange") render(convexity = 10) drawer_in_sleeve(open_mm);
} else if (part == "interference") {
    intersection() {
        sleeve();
        drawer_in_sleeve(0);
    }
}
